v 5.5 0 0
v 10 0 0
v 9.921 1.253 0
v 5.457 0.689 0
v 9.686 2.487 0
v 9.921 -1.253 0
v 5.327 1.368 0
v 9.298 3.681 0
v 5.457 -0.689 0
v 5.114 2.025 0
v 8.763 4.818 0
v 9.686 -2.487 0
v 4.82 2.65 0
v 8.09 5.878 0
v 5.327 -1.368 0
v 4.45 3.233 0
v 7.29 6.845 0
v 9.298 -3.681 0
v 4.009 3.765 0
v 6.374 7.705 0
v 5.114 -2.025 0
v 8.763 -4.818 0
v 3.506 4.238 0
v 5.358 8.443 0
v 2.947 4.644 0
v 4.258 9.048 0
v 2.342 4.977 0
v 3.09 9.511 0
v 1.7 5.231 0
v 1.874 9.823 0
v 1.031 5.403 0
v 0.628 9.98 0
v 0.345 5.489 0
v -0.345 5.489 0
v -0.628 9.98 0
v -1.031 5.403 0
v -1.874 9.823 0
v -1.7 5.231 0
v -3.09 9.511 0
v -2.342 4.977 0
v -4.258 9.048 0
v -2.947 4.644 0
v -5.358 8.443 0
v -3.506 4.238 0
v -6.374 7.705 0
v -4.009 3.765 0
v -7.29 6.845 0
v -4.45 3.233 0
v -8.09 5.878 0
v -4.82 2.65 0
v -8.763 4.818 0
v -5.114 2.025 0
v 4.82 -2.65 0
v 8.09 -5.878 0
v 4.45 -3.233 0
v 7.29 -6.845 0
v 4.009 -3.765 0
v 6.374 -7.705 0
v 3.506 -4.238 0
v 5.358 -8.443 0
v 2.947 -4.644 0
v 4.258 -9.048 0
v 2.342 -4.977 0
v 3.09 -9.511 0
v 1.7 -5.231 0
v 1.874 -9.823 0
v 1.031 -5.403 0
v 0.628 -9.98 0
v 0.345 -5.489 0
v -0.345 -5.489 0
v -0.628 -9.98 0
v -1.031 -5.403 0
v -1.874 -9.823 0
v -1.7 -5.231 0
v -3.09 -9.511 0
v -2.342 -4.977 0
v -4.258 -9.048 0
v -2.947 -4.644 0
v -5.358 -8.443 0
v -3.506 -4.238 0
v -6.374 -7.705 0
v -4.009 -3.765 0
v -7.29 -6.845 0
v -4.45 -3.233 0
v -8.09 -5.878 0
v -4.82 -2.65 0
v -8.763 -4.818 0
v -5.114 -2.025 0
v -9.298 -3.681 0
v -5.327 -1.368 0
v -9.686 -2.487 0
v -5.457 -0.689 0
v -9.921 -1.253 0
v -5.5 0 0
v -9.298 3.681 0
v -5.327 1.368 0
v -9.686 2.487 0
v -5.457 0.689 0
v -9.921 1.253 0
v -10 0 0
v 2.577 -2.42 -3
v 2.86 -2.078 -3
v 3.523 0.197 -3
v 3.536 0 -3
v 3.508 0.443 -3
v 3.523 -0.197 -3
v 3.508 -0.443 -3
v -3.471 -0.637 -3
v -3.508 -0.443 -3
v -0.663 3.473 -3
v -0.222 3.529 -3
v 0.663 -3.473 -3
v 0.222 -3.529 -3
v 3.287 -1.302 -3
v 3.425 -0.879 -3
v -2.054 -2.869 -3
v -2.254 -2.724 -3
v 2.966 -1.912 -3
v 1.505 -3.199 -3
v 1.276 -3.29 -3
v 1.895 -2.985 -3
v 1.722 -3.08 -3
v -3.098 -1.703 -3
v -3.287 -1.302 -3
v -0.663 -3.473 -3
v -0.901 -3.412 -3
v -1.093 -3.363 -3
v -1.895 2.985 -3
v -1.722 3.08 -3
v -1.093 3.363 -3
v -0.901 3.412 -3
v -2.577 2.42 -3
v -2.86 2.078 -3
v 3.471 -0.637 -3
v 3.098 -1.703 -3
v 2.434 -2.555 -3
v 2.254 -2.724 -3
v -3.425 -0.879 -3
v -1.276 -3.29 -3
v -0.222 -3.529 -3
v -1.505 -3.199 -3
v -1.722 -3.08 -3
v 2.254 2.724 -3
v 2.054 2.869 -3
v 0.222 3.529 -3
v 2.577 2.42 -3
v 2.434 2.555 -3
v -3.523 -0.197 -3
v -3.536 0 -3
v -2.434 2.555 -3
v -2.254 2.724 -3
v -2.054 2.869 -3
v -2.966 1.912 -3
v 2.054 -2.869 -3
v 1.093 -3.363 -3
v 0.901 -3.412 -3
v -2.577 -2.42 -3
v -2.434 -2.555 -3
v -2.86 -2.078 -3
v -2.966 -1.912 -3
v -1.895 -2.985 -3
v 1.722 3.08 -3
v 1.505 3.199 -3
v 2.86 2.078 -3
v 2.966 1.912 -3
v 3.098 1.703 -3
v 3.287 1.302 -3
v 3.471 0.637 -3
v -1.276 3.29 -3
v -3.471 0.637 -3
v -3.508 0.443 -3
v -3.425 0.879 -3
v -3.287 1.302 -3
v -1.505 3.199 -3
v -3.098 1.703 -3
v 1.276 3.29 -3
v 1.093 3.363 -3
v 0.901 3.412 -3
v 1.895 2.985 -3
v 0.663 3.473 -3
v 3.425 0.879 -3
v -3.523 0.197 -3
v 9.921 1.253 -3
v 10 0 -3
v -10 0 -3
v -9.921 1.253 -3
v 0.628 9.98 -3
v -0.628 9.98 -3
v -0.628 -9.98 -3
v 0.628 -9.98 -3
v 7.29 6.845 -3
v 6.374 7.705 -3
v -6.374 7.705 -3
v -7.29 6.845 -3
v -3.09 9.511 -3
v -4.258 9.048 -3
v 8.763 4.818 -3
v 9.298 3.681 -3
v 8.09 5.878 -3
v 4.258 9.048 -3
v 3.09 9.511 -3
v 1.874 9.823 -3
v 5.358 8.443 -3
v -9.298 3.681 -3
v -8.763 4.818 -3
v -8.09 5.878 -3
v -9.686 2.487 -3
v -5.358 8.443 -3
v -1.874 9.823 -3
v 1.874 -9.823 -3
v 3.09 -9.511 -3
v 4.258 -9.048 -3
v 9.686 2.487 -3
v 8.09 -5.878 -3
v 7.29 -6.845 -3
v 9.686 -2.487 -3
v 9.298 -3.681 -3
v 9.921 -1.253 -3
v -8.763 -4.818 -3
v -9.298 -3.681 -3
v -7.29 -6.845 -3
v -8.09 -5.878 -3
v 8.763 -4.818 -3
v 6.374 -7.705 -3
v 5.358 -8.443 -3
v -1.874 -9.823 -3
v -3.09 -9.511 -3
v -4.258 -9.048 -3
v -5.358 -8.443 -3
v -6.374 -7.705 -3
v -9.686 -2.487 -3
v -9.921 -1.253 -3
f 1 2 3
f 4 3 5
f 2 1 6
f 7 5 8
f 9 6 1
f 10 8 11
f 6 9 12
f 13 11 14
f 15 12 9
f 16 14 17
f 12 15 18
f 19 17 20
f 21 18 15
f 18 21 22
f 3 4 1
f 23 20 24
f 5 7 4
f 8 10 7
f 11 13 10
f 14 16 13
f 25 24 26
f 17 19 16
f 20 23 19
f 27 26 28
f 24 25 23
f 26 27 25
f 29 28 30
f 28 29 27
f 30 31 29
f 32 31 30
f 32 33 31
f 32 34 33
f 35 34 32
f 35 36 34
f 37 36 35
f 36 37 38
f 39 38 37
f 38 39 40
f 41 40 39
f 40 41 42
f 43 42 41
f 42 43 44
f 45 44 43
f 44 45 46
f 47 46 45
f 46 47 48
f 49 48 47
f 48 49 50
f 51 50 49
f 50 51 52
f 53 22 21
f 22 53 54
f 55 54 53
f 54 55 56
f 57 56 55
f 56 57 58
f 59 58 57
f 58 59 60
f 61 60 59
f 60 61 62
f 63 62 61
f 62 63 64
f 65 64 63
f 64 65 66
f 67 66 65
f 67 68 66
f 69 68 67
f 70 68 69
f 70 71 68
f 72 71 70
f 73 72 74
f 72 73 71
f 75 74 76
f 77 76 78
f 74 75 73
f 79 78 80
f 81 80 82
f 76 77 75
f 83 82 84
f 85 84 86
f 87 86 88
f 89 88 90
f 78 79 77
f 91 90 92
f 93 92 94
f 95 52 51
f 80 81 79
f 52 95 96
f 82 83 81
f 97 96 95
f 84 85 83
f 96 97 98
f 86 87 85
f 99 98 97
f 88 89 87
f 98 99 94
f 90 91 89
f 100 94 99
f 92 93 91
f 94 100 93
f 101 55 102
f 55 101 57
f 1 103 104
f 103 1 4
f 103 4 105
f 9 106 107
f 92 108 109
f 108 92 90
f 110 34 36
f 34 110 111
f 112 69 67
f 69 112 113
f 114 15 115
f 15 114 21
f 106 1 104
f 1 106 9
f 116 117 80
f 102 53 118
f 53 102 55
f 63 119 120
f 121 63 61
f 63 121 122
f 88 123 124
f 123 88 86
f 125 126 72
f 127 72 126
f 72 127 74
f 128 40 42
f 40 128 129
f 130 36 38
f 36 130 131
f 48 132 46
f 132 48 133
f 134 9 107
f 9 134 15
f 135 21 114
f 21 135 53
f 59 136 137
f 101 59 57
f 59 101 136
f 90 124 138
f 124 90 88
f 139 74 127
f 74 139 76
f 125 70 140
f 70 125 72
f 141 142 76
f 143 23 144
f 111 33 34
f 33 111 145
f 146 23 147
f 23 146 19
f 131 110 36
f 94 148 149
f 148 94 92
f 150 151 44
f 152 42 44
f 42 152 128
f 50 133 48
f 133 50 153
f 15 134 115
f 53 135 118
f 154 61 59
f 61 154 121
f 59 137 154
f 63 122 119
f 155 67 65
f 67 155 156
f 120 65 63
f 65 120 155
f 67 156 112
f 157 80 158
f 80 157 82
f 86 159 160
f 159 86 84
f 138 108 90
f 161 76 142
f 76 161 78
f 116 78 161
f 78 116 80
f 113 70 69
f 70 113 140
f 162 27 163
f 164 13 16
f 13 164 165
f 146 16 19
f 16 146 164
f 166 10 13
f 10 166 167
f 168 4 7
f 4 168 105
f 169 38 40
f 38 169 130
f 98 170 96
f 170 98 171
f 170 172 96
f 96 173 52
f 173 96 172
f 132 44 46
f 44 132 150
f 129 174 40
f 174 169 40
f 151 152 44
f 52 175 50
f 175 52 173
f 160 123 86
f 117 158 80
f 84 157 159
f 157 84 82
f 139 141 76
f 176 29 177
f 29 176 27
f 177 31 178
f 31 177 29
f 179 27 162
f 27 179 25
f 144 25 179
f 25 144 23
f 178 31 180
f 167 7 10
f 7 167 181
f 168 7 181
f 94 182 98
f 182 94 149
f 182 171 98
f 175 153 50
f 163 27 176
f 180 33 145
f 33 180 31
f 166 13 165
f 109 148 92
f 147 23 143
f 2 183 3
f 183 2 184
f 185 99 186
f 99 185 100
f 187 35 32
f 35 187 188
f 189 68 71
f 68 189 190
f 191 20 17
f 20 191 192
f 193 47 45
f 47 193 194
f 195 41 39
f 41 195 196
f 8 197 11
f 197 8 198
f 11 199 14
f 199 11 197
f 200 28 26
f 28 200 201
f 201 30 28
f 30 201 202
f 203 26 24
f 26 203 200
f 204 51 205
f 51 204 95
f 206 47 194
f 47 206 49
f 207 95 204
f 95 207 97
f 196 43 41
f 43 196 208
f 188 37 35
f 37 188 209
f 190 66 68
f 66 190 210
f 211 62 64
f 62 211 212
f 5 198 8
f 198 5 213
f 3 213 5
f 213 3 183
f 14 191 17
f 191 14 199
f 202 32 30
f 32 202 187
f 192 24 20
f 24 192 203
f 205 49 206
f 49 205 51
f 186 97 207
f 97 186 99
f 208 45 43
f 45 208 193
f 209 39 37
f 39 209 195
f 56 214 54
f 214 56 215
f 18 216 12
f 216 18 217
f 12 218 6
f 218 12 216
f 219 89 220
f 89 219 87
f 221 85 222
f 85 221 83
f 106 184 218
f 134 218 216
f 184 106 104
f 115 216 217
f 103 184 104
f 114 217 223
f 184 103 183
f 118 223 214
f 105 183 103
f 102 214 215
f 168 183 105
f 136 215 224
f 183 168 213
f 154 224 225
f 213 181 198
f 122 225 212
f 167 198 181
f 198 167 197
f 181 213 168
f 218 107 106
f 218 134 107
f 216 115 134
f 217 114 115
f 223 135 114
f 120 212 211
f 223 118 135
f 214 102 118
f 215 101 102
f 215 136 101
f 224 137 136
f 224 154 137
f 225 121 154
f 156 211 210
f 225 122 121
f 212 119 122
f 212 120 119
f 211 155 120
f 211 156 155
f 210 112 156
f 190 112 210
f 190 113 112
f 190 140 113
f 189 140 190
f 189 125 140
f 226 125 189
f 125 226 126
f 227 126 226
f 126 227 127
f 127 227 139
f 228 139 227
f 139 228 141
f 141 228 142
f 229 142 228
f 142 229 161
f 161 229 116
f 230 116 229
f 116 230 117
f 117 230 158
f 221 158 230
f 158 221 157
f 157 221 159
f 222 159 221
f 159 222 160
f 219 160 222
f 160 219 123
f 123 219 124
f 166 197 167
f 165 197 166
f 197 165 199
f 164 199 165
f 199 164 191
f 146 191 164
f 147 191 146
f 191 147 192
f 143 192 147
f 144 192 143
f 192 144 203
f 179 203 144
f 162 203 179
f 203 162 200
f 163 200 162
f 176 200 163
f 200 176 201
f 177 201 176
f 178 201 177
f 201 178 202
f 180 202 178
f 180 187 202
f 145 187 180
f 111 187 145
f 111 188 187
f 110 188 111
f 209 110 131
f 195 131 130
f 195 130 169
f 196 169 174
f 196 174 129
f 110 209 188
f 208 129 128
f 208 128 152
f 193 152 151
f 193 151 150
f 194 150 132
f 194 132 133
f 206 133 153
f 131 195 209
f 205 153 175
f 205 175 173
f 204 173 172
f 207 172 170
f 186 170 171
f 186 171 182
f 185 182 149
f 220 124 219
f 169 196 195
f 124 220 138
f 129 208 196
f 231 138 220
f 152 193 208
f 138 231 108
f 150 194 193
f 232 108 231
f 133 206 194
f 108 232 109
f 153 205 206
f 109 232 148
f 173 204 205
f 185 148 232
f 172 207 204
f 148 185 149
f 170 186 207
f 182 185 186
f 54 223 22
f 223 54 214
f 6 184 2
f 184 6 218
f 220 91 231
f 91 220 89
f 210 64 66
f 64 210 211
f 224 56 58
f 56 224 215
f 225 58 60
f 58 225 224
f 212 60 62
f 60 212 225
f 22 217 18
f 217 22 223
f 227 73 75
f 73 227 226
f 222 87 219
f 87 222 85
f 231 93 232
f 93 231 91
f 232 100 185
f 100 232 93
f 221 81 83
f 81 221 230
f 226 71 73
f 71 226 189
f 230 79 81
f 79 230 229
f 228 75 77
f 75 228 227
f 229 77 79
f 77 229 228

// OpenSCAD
$fn = 50;


difference() {
	union() {
		translate(v = [0, 0, -3.0000000000]) {
			cylinder(h = 3, r = 10.0000000000);
		}
		cylinder(h = 0, r = 16.0000000000);
	}
	union() {
		translate(v = [0, 0, 0]) {
			rotate(a = [0, 0, 0]) {
				difference() {
					union() {
						#translate(v = [0, 0, -3.0000000000]) {
							cylinder(h = 3, r = 2.2500000000);
						}
						#translate(v = [0, 0, -4.2000000000]) {
							cylinder(h = 4.2000000000, r1 = 2.7500000000, r2 = 5.5000000000);
						}
						#translate(v = [0, 0, -3.0000000000]) {
							cylinder(h = 3, r = 2.7500000000);
						}
						#translate(v = [0, 0, -3.0000000000]) {
							cylinder(h = 3, r = 2.2500000000);
						}
					}
					union();
				}
			}
		}
	}
}
